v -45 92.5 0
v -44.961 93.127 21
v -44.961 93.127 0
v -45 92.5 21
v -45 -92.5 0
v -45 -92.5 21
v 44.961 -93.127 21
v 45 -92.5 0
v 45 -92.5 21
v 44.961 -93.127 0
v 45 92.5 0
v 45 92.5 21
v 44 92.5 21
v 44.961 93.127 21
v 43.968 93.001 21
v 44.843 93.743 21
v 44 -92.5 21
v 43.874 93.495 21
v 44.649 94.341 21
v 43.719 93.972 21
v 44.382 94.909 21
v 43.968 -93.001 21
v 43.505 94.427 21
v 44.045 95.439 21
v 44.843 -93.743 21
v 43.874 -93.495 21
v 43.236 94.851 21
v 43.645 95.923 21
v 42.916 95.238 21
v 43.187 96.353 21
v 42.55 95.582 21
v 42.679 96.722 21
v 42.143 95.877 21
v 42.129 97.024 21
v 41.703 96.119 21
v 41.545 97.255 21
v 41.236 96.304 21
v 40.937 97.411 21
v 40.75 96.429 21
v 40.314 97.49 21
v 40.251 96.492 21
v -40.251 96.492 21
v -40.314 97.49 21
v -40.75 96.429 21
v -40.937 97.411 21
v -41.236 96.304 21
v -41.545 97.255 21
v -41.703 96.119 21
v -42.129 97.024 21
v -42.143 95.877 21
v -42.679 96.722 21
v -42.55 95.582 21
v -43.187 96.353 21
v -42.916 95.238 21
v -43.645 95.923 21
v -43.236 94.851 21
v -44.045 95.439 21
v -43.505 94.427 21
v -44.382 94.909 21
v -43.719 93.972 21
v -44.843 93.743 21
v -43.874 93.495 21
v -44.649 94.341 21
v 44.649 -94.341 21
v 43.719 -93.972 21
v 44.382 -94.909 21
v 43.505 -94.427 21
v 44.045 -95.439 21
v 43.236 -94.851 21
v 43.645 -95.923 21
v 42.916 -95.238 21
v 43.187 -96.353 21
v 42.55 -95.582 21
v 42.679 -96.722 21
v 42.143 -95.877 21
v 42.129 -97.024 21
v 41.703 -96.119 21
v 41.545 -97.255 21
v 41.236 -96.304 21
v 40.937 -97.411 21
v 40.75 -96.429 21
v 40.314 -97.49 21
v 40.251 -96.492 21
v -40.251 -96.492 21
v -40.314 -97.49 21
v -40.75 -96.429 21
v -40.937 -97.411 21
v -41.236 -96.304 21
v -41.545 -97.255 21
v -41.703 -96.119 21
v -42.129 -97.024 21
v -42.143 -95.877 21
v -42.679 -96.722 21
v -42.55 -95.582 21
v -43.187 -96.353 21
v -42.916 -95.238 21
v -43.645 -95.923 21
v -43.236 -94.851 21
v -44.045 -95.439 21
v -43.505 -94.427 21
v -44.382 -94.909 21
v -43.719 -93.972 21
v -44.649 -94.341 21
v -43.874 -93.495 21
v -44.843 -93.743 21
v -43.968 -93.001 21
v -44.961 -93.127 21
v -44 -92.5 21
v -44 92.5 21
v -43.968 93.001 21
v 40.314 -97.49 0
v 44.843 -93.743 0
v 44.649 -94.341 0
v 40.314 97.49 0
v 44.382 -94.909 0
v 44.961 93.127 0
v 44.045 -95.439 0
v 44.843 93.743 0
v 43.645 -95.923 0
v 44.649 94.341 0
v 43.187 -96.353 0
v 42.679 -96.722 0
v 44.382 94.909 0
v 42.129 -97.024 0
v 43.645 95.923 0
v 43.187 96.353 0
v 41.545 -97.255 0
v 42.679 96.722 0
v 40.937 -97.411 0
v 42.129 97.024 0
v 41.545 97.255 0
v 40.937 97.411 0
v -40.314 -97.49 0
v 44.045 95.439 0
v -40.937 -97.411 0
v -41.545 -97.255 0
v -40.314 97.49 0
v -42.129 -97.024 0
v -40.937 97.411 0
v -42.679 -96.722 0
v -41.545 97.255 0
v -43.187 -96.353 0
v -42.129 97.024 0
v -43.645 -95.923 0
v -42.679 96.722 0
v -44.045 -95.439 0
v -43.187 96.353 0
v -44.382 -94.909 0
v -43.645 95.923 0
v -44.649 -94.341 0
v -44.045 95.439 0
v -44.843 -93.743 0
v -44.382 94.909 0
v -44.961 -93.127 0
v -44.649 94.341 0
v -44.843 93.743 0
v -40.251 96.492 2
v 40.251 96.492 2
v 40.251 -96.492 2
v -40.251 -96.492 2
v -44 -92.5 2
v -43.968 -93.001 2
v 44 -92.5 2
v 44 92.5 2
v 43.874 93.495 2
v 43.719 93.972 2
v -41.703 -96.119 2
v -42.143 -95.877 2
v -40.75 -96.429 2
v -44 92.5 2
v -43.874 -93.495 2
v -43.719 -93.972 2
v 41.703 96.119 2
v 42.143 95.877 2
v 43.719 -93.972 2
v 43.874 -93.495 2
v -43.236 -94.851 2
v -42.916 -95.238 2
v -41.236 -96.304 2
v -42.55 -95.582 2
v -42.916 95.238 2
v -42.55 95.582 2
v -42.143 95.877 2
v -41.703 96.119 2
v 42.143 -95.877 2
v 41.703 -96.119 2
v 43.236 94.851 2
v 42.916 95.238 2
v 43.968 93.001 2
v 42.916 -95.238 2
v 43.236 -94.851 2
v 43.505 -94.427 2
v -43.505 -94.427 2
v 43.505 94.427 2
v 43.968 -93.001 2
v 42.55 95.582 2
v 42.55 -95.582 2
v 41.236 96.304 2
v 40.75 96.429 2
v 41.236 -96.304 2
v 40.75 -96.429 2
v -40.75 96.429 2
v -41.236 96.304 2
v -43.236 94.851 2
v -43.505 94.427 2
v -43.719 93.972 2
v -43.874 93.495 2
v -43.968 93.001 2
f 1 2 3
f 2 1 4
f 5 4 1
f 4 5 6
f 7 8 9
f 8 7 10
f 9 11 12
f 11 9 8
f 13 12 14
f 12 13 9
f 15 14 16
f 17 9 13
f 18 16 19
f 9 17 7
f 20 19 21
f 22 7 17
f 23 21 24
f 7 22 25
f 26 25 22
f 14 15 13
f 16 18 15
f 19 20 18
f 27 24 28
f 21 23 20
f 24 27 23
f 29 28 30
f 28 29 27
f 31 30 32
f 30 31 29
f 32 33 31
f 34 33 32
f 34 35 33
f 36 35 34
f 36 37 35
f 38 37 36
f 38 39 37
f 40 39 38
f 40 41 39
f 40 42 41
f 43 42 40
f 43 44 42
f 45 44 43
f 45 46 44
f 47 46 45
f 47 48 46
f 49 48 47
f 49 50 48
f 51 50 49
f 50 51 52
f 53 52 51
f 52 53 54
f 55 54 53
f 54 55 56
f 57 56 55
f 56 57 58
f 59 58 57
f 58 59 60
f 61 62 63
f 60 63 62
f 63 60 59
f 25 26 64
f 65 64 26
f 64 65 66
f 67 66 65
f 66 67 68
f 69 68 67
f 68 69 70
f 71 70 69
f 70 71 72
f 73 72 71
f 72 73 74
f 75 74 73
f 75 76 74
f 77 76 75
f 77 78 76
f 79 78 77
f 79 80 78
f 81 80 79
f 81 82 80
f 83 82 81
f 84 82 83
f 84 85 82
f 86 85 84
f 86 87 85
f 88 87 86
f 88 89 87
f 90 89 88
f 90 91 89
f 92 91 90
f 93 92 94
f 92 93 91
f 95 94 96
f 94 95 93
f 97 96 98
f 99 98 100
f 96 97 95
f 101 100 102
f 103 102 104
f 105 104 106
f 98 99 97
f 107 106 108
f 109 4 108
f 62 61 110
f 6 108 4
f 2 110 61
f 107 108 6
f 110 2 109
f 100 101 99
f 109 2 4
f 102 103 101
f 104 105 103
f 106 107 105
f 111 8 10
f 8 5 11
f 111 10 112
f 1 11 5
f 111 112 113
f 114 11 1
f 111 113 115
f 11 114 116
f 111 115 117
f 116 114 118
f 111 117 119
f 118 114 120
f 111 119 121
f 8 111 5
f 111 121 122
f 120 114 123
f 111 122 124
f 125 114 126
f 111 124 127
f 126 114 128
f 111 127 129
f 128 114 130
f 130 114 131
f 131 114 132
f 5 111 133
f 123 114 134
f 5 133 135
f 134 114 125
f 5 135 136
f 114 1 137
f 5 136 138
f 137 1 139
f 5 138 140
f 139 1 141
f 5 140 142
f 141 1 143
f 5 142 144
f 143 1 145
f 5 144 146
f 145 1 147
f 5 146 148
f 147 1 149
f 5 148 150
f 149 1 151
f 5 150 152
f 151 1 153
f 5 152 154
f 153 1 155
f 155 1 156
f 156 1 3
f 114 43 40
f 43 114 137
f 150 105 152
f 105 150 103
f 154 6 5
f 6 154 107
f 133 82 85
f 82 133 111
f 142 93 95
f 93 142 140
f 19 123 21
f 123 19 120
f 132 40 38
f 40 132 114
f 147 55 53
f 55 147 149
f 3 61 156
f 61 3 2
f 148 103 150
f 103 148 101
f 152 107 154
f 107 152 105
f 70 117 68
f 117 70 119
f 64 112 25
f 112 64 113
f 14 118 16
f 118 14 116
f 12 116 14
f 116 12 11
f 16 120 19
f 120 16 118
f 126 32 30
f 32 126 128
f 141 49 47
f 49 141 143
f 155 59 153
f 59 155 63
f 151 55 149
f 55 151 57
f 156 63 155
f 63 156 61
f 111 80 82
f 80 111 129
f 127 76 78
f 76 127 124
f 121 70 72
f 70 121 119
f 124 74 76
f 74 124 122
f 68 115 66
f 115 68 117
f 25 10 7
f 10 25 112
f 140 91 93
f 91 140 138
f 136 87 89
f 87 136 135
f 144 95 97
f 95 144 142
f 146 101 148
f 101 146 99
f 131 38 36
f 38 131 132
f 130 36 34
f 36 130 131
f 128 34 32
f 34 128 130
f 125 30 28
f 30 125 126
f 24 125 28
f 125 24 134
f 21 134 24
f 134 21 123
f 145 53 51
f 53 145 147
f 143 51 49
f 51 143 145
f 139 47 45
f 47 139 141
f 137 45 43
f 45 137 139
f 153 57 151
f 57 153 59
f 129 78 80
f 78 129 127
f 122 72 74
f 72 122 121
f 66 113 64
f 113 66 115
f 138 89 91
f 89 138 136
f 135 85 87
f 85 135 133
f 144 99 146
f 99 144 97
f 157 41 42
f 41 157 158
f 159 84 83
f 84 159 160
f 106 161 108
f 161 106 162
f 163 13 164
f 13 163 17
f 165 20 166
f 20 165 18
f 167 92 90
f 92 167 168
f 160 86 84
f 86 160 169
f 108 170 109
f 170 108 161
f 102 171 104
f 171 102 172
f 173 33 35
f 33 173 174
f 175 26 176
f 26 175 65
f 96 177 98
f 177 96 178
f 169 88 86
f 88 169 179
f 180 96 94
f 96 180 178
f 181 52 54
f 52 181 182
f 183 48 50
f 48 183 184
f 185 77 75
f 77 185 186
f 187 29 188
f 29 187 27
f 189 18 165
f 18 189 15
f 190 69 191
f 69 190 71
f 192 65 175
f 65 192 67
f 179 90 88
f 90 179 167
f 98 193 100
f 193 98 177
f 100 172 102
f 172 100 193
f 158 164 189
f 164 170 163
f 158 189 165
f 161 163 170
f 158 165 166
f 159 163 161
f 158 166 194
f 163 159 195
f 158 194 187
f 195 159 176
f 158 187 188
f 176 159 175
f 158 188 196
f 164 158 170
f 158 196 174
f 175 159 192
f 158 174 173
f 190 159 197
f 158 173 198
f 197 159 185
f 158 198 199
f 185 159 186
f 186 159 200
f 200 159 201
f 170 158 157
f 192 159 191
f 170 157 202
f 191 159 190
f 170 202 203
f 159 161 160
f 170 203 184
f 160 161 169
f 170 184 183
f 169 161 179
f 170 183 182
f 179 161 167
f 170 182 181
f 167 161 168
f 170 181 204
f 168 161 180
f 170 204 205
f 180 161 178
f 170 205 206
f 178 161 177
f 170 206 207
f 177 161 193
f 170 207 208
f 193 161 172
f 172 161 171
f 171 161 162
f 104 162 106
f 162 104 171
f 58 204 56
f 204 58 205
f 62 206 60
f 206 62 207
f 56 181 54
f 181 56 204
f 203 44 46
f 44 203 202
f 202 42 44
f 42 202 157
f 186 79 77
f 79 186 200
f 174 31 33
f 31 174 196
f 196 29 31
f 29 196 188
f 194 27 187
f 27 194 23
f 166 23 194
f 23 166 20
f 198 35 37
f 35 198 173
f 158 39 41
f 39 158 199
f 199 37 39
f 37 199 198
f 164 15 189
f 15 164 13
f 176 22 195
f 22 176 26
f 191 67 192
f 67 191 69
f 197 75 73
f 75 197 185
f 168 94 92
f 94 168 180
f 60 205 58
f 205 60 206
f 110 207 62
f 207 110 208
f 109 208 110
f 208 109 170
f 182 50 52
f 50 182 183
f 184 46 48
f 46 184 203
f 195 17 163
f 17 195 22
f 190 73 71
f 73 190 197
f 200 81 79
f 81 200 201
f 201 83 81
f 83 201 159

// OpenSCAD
$fn = 50;


difference() {
	union() {
		hull() {
			translate(v = [-40.0000000000, 92.5000000000, 0]) {
				cylinder(h = 21, r = 5);
			}
			translate(v = [40.0000000000, 92.5000000000, 0]) {
				cylinder(h = 21, r = 5);
			}
			translate(v = [-40.0000000000, -92.5000000000, 0]) {
				cylinder(h = 21, r = 5);
			}
			translate(v = [40.0000000000, -92.5000000000, 0]) {
				cylinder(h = 21, r = 5);
			}
		}
	}
	union() {
		translate(v = [0, 0, 2]) {
			hull() {
				translate(v = [-40.0000000000, 92.5000000000, 0]) {
					cylinder(h = 19, r = 4);
				}
				translate(v = [40.0000000000, 92.5000000000, 0]) {
					cylinder(h = 19, r = 4);
				}
				translate(v = [-40.0000000000, -92.5000000000, 0]) {
					cylinder(h = 19, r = 4);
				}
				translate(v = [40.0000000000, -92.5000000000, 0]) {
					cylinder(h = 19, r = 4);
				}
			}
		}
	}
}
